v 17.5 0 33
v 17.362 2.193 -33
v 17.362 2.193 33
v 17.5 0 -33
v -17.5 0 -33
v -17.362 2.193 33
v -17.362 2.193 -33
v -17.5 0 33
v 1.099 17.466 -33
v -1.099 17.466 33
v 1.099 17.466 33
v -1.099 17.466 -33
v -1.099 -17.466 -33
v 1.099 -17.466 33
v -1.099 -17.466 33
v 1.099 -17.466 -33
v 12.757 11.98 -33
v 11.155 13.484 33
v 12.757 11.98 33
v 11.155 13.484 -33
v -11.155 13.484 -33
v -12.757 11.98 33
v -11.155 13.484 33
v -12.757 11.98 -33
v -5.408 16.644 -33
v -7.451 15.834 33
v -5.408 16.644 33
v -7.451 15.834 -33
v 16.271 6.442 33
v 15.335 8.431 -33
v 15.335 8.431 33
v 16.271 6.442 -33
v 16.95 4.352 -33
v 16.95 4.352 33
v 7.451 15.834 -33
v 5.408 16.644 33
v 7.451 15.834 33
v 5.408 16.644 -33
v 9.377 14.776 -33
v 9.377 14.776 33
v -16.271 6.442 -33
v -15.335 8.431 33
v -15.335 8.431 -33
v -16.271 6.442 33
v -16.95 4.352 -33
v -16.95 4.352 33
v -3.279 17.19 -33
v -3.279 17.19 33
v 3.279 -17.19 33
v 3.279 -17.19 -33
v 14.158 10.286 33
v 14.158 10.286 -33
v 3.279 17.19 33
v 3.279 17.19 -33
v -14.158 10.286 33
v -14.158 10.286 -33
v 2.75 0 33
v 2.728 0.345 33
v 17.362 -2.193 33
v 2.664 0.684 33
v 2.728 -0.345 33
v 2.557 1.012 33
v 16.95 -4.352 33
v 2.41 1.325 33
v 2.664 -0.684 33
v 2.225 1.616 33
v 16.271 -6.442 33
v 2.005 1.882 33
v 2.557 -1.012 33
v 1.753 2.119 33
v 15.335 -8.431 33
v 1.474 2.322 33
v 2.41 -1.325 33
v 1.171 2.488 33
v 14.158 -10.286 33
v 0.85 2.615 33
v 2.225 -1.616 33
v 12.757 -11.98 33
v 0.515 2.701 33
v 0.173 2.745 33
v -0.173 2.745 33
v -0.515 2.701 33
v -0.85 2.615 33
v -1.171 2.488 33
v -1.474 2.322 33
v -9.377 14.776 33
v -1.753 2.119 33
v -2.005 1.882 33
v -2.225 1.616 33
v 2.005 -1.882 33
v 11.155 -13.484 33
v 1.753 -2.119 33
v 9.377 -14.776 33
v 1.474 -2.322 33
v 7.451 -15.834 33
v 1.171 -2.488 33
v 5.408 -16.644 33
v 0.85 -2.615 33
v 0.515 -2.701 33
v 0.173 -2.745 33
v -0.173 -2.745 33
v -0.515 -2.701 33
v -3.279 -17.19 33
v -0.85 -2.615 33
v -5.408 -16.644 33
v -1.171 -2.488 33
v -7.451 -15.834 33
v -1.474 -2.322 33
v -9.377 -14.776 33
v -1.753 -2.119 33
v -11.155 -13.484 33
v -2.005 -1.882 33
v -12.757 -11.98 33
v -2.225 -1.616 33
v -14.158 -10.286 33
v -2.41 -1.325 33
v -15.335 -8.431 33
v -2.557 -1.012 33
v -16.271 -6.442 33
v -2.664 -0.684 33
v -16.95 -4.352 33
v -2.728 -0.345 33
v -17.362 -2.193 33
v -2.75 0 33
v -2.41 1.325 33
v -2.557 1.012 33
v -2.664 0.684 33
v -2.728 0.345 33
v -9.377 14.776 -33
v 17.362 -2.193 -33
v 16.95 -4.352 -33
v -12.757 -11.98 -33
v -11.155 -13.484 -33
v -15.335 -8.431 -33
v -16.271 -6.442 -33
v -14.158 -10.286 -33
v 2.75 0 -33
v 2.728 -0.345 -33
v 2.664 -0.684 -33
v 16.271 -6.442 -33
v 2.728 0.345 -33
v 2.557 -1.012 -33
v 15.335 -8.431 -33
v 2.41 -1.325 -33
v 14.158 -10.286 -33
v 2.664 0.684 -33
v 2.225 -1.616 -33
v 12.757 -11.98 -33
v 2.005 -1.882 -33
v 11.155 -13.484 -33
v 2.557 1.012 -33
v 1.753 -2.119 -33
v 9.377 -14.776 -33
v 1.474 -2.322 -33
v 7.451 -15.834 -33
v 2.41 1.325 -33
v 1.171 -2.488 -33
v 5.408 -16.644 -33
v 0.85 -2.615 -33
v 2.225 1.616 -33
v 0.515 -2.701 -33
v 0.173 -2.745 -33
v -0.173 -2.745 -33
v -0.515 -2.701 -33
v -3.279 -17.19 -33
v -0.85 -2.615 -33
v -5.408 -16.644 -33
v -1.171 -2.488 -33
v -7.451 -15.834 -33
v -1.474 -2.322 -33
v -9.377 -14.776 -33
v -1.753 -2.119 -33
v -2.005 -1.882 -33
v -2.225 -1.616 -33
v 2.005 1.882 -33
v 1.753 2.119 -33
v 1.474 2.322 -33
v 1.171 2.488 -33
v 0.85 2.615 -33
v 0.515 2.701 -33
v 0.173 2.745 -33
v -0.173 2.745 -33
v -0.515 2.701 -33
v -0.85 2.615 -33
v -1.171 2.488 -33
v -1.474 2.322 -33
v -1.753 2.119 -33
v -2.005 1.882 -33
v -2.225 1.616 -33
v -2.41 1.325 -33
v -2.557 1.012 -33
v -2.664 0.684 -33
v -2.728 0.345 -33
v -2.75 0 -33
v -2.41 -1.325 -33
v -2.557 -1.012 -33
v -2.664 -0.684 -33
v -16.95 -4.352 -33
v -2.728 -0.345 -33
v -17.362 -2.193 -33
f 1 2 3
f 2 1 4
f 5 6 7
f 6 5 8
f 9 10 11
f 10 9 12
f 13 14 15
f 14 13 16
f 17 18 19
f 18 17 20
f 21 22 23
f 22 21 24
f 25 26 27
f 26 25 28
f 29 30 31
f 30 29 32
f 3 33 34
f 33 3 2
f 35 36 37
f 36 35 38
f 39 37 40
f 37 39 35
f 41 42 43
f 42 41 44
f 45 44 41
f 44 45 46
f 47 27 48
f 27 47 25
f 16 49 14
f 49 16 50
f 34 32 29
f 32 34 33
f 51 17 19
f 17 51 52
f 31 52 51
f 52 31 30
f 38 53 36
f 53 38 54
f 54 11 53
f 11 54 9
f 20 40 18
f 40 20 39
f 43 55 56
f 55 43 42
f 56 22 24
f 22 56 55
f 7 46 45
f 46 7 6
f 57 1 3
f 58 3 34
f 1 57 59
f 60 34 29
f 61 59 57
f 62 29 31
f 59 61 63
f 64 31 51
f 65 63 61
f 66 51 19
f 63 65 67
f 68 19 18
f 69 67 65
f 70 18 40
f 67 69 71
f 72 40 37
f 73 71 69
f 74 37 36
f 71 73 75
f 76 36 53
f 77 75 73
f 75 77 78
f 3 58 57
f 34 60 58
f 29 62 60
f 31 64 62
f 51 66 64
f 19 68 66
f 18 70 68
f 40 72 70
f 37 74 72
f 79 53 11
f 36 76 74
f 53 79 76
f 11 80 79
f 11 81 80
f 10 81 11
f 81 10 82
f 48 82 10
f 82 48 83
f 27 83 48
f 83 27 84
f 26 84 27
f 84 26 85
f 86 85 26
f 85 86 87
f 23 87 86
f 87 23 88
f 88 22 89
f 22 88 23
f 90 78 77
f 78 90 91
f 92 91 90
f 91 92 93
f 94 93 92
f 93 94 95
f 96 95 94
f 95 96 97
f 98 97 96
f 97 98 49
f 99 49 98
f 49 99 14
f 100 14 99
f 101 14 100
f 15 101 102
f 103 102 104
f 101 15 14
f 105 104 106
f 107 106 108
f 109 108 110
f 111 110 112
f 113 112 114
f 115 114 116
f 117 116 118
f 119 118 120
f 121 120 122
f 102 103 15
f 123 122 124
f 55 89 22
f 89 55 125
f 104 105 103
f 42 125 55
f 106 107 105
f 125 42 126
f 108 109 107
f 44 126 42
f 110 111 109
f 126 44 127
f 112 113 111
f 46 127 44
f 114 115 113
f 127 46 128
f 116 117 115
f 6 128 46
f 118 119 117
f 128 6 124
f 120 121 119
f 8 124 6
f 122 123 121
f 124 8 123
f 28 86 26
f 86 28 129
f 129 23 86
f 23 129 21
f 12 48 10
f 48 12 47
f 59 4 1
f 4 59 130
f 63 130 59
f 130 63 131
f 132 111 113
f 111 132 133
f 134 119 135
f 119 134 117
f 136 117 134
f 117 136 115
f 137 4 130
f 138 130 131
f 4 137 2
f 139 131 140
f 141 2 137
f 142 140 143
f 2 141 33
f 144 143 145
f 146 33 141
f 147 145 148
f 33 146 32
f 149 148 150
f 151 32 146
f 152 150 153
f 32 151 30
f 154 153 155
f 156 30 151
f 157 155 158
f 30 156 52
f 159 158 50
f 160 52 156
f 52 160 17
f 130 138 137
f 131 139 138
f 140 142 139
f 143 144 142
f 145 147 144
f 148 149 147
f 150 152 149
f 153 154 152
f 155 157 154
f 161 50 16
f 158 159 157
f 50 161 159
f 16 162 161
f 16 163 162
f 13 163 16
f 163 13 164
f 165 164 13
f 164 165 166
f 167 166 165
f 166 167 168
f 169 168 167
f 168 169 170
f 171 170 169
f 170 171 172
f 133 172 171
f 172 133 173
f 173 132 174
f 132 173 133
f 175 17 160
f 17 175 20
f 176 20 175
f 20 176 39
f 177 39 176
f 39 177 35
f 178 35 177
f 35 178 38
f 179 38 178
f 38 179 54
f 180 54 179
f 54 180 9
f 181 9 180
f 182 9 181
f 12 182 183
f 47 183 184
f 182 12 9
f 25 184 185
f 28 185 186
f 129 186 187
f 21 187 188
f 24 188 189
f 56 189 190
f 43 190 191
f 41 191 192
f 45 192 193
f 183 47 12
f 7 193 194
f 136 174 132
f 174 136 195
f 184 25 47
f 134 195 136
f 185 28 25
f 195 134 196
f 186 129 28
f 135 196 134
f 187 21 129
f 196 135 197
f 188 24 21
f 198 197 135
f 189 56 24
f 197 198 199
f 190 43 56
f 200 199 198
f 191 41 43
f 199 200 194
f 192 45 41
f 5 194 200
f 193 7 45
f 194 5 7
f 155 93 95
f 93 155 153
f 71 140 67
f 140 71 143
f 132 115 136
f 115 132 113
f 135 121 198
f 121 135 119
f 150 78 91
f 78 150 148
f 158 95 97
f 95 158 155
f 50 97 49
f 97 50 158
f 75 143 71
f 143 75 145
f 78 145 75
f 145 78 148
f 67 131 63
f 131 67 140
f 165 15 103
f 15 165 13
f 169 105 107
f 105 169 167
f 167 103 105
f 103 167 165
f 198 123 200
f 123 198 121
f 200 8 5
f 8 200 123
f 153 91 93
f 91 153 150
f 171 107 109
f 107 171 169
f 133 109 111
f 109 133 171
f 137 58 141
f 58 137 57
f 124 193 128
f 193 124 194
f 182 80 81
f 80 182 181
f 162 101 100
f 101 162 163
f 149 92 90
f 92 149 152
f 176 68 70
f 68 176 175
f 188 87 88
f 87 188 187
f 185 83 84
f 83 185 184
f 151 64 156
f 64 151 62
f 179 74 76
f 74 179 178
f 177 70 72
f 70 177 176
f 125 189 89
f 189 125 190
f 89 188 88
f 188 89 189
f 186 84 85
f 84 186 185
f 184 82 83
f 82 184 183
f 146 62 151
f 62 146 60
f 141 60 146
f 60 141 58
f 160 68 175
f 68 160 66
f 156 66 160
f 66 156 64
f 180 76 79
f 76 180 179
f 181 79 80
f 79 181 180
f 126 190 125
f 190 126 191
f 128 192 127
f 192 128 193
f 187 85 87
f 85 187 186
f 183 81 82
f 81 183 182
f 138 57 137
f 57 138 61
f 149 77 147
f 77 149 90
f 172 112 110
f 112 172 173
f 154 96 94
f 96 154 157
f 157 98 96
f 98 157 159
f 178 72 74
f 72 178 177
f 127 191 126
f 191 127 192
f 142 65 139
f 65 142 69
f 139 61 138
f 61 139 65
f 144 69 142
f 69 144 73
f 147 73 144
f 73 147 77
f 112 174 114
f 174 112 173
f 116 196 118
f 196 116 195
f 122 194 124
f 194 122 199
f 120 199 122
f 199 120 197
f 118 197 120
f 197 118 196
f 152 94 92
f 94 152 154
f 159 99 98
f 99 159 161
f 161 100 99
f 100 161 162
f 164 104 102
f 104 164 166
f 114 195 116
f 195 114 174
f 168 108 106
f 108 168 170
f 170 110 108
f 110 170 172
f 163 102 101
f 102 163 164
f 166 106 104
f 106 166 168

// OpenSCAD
$fn = 50;


difference() {
	union() {
		translate(v = [0, 0, -33.0000000000]) {
			cylinder(h = 66, r = 17.5000000000);
		}
	}
	union() {
		translate(v = [0, 0, -100.0000000000]) {
			cylinder(h = 200, r = 2.7500000000);
		}
	}
}
